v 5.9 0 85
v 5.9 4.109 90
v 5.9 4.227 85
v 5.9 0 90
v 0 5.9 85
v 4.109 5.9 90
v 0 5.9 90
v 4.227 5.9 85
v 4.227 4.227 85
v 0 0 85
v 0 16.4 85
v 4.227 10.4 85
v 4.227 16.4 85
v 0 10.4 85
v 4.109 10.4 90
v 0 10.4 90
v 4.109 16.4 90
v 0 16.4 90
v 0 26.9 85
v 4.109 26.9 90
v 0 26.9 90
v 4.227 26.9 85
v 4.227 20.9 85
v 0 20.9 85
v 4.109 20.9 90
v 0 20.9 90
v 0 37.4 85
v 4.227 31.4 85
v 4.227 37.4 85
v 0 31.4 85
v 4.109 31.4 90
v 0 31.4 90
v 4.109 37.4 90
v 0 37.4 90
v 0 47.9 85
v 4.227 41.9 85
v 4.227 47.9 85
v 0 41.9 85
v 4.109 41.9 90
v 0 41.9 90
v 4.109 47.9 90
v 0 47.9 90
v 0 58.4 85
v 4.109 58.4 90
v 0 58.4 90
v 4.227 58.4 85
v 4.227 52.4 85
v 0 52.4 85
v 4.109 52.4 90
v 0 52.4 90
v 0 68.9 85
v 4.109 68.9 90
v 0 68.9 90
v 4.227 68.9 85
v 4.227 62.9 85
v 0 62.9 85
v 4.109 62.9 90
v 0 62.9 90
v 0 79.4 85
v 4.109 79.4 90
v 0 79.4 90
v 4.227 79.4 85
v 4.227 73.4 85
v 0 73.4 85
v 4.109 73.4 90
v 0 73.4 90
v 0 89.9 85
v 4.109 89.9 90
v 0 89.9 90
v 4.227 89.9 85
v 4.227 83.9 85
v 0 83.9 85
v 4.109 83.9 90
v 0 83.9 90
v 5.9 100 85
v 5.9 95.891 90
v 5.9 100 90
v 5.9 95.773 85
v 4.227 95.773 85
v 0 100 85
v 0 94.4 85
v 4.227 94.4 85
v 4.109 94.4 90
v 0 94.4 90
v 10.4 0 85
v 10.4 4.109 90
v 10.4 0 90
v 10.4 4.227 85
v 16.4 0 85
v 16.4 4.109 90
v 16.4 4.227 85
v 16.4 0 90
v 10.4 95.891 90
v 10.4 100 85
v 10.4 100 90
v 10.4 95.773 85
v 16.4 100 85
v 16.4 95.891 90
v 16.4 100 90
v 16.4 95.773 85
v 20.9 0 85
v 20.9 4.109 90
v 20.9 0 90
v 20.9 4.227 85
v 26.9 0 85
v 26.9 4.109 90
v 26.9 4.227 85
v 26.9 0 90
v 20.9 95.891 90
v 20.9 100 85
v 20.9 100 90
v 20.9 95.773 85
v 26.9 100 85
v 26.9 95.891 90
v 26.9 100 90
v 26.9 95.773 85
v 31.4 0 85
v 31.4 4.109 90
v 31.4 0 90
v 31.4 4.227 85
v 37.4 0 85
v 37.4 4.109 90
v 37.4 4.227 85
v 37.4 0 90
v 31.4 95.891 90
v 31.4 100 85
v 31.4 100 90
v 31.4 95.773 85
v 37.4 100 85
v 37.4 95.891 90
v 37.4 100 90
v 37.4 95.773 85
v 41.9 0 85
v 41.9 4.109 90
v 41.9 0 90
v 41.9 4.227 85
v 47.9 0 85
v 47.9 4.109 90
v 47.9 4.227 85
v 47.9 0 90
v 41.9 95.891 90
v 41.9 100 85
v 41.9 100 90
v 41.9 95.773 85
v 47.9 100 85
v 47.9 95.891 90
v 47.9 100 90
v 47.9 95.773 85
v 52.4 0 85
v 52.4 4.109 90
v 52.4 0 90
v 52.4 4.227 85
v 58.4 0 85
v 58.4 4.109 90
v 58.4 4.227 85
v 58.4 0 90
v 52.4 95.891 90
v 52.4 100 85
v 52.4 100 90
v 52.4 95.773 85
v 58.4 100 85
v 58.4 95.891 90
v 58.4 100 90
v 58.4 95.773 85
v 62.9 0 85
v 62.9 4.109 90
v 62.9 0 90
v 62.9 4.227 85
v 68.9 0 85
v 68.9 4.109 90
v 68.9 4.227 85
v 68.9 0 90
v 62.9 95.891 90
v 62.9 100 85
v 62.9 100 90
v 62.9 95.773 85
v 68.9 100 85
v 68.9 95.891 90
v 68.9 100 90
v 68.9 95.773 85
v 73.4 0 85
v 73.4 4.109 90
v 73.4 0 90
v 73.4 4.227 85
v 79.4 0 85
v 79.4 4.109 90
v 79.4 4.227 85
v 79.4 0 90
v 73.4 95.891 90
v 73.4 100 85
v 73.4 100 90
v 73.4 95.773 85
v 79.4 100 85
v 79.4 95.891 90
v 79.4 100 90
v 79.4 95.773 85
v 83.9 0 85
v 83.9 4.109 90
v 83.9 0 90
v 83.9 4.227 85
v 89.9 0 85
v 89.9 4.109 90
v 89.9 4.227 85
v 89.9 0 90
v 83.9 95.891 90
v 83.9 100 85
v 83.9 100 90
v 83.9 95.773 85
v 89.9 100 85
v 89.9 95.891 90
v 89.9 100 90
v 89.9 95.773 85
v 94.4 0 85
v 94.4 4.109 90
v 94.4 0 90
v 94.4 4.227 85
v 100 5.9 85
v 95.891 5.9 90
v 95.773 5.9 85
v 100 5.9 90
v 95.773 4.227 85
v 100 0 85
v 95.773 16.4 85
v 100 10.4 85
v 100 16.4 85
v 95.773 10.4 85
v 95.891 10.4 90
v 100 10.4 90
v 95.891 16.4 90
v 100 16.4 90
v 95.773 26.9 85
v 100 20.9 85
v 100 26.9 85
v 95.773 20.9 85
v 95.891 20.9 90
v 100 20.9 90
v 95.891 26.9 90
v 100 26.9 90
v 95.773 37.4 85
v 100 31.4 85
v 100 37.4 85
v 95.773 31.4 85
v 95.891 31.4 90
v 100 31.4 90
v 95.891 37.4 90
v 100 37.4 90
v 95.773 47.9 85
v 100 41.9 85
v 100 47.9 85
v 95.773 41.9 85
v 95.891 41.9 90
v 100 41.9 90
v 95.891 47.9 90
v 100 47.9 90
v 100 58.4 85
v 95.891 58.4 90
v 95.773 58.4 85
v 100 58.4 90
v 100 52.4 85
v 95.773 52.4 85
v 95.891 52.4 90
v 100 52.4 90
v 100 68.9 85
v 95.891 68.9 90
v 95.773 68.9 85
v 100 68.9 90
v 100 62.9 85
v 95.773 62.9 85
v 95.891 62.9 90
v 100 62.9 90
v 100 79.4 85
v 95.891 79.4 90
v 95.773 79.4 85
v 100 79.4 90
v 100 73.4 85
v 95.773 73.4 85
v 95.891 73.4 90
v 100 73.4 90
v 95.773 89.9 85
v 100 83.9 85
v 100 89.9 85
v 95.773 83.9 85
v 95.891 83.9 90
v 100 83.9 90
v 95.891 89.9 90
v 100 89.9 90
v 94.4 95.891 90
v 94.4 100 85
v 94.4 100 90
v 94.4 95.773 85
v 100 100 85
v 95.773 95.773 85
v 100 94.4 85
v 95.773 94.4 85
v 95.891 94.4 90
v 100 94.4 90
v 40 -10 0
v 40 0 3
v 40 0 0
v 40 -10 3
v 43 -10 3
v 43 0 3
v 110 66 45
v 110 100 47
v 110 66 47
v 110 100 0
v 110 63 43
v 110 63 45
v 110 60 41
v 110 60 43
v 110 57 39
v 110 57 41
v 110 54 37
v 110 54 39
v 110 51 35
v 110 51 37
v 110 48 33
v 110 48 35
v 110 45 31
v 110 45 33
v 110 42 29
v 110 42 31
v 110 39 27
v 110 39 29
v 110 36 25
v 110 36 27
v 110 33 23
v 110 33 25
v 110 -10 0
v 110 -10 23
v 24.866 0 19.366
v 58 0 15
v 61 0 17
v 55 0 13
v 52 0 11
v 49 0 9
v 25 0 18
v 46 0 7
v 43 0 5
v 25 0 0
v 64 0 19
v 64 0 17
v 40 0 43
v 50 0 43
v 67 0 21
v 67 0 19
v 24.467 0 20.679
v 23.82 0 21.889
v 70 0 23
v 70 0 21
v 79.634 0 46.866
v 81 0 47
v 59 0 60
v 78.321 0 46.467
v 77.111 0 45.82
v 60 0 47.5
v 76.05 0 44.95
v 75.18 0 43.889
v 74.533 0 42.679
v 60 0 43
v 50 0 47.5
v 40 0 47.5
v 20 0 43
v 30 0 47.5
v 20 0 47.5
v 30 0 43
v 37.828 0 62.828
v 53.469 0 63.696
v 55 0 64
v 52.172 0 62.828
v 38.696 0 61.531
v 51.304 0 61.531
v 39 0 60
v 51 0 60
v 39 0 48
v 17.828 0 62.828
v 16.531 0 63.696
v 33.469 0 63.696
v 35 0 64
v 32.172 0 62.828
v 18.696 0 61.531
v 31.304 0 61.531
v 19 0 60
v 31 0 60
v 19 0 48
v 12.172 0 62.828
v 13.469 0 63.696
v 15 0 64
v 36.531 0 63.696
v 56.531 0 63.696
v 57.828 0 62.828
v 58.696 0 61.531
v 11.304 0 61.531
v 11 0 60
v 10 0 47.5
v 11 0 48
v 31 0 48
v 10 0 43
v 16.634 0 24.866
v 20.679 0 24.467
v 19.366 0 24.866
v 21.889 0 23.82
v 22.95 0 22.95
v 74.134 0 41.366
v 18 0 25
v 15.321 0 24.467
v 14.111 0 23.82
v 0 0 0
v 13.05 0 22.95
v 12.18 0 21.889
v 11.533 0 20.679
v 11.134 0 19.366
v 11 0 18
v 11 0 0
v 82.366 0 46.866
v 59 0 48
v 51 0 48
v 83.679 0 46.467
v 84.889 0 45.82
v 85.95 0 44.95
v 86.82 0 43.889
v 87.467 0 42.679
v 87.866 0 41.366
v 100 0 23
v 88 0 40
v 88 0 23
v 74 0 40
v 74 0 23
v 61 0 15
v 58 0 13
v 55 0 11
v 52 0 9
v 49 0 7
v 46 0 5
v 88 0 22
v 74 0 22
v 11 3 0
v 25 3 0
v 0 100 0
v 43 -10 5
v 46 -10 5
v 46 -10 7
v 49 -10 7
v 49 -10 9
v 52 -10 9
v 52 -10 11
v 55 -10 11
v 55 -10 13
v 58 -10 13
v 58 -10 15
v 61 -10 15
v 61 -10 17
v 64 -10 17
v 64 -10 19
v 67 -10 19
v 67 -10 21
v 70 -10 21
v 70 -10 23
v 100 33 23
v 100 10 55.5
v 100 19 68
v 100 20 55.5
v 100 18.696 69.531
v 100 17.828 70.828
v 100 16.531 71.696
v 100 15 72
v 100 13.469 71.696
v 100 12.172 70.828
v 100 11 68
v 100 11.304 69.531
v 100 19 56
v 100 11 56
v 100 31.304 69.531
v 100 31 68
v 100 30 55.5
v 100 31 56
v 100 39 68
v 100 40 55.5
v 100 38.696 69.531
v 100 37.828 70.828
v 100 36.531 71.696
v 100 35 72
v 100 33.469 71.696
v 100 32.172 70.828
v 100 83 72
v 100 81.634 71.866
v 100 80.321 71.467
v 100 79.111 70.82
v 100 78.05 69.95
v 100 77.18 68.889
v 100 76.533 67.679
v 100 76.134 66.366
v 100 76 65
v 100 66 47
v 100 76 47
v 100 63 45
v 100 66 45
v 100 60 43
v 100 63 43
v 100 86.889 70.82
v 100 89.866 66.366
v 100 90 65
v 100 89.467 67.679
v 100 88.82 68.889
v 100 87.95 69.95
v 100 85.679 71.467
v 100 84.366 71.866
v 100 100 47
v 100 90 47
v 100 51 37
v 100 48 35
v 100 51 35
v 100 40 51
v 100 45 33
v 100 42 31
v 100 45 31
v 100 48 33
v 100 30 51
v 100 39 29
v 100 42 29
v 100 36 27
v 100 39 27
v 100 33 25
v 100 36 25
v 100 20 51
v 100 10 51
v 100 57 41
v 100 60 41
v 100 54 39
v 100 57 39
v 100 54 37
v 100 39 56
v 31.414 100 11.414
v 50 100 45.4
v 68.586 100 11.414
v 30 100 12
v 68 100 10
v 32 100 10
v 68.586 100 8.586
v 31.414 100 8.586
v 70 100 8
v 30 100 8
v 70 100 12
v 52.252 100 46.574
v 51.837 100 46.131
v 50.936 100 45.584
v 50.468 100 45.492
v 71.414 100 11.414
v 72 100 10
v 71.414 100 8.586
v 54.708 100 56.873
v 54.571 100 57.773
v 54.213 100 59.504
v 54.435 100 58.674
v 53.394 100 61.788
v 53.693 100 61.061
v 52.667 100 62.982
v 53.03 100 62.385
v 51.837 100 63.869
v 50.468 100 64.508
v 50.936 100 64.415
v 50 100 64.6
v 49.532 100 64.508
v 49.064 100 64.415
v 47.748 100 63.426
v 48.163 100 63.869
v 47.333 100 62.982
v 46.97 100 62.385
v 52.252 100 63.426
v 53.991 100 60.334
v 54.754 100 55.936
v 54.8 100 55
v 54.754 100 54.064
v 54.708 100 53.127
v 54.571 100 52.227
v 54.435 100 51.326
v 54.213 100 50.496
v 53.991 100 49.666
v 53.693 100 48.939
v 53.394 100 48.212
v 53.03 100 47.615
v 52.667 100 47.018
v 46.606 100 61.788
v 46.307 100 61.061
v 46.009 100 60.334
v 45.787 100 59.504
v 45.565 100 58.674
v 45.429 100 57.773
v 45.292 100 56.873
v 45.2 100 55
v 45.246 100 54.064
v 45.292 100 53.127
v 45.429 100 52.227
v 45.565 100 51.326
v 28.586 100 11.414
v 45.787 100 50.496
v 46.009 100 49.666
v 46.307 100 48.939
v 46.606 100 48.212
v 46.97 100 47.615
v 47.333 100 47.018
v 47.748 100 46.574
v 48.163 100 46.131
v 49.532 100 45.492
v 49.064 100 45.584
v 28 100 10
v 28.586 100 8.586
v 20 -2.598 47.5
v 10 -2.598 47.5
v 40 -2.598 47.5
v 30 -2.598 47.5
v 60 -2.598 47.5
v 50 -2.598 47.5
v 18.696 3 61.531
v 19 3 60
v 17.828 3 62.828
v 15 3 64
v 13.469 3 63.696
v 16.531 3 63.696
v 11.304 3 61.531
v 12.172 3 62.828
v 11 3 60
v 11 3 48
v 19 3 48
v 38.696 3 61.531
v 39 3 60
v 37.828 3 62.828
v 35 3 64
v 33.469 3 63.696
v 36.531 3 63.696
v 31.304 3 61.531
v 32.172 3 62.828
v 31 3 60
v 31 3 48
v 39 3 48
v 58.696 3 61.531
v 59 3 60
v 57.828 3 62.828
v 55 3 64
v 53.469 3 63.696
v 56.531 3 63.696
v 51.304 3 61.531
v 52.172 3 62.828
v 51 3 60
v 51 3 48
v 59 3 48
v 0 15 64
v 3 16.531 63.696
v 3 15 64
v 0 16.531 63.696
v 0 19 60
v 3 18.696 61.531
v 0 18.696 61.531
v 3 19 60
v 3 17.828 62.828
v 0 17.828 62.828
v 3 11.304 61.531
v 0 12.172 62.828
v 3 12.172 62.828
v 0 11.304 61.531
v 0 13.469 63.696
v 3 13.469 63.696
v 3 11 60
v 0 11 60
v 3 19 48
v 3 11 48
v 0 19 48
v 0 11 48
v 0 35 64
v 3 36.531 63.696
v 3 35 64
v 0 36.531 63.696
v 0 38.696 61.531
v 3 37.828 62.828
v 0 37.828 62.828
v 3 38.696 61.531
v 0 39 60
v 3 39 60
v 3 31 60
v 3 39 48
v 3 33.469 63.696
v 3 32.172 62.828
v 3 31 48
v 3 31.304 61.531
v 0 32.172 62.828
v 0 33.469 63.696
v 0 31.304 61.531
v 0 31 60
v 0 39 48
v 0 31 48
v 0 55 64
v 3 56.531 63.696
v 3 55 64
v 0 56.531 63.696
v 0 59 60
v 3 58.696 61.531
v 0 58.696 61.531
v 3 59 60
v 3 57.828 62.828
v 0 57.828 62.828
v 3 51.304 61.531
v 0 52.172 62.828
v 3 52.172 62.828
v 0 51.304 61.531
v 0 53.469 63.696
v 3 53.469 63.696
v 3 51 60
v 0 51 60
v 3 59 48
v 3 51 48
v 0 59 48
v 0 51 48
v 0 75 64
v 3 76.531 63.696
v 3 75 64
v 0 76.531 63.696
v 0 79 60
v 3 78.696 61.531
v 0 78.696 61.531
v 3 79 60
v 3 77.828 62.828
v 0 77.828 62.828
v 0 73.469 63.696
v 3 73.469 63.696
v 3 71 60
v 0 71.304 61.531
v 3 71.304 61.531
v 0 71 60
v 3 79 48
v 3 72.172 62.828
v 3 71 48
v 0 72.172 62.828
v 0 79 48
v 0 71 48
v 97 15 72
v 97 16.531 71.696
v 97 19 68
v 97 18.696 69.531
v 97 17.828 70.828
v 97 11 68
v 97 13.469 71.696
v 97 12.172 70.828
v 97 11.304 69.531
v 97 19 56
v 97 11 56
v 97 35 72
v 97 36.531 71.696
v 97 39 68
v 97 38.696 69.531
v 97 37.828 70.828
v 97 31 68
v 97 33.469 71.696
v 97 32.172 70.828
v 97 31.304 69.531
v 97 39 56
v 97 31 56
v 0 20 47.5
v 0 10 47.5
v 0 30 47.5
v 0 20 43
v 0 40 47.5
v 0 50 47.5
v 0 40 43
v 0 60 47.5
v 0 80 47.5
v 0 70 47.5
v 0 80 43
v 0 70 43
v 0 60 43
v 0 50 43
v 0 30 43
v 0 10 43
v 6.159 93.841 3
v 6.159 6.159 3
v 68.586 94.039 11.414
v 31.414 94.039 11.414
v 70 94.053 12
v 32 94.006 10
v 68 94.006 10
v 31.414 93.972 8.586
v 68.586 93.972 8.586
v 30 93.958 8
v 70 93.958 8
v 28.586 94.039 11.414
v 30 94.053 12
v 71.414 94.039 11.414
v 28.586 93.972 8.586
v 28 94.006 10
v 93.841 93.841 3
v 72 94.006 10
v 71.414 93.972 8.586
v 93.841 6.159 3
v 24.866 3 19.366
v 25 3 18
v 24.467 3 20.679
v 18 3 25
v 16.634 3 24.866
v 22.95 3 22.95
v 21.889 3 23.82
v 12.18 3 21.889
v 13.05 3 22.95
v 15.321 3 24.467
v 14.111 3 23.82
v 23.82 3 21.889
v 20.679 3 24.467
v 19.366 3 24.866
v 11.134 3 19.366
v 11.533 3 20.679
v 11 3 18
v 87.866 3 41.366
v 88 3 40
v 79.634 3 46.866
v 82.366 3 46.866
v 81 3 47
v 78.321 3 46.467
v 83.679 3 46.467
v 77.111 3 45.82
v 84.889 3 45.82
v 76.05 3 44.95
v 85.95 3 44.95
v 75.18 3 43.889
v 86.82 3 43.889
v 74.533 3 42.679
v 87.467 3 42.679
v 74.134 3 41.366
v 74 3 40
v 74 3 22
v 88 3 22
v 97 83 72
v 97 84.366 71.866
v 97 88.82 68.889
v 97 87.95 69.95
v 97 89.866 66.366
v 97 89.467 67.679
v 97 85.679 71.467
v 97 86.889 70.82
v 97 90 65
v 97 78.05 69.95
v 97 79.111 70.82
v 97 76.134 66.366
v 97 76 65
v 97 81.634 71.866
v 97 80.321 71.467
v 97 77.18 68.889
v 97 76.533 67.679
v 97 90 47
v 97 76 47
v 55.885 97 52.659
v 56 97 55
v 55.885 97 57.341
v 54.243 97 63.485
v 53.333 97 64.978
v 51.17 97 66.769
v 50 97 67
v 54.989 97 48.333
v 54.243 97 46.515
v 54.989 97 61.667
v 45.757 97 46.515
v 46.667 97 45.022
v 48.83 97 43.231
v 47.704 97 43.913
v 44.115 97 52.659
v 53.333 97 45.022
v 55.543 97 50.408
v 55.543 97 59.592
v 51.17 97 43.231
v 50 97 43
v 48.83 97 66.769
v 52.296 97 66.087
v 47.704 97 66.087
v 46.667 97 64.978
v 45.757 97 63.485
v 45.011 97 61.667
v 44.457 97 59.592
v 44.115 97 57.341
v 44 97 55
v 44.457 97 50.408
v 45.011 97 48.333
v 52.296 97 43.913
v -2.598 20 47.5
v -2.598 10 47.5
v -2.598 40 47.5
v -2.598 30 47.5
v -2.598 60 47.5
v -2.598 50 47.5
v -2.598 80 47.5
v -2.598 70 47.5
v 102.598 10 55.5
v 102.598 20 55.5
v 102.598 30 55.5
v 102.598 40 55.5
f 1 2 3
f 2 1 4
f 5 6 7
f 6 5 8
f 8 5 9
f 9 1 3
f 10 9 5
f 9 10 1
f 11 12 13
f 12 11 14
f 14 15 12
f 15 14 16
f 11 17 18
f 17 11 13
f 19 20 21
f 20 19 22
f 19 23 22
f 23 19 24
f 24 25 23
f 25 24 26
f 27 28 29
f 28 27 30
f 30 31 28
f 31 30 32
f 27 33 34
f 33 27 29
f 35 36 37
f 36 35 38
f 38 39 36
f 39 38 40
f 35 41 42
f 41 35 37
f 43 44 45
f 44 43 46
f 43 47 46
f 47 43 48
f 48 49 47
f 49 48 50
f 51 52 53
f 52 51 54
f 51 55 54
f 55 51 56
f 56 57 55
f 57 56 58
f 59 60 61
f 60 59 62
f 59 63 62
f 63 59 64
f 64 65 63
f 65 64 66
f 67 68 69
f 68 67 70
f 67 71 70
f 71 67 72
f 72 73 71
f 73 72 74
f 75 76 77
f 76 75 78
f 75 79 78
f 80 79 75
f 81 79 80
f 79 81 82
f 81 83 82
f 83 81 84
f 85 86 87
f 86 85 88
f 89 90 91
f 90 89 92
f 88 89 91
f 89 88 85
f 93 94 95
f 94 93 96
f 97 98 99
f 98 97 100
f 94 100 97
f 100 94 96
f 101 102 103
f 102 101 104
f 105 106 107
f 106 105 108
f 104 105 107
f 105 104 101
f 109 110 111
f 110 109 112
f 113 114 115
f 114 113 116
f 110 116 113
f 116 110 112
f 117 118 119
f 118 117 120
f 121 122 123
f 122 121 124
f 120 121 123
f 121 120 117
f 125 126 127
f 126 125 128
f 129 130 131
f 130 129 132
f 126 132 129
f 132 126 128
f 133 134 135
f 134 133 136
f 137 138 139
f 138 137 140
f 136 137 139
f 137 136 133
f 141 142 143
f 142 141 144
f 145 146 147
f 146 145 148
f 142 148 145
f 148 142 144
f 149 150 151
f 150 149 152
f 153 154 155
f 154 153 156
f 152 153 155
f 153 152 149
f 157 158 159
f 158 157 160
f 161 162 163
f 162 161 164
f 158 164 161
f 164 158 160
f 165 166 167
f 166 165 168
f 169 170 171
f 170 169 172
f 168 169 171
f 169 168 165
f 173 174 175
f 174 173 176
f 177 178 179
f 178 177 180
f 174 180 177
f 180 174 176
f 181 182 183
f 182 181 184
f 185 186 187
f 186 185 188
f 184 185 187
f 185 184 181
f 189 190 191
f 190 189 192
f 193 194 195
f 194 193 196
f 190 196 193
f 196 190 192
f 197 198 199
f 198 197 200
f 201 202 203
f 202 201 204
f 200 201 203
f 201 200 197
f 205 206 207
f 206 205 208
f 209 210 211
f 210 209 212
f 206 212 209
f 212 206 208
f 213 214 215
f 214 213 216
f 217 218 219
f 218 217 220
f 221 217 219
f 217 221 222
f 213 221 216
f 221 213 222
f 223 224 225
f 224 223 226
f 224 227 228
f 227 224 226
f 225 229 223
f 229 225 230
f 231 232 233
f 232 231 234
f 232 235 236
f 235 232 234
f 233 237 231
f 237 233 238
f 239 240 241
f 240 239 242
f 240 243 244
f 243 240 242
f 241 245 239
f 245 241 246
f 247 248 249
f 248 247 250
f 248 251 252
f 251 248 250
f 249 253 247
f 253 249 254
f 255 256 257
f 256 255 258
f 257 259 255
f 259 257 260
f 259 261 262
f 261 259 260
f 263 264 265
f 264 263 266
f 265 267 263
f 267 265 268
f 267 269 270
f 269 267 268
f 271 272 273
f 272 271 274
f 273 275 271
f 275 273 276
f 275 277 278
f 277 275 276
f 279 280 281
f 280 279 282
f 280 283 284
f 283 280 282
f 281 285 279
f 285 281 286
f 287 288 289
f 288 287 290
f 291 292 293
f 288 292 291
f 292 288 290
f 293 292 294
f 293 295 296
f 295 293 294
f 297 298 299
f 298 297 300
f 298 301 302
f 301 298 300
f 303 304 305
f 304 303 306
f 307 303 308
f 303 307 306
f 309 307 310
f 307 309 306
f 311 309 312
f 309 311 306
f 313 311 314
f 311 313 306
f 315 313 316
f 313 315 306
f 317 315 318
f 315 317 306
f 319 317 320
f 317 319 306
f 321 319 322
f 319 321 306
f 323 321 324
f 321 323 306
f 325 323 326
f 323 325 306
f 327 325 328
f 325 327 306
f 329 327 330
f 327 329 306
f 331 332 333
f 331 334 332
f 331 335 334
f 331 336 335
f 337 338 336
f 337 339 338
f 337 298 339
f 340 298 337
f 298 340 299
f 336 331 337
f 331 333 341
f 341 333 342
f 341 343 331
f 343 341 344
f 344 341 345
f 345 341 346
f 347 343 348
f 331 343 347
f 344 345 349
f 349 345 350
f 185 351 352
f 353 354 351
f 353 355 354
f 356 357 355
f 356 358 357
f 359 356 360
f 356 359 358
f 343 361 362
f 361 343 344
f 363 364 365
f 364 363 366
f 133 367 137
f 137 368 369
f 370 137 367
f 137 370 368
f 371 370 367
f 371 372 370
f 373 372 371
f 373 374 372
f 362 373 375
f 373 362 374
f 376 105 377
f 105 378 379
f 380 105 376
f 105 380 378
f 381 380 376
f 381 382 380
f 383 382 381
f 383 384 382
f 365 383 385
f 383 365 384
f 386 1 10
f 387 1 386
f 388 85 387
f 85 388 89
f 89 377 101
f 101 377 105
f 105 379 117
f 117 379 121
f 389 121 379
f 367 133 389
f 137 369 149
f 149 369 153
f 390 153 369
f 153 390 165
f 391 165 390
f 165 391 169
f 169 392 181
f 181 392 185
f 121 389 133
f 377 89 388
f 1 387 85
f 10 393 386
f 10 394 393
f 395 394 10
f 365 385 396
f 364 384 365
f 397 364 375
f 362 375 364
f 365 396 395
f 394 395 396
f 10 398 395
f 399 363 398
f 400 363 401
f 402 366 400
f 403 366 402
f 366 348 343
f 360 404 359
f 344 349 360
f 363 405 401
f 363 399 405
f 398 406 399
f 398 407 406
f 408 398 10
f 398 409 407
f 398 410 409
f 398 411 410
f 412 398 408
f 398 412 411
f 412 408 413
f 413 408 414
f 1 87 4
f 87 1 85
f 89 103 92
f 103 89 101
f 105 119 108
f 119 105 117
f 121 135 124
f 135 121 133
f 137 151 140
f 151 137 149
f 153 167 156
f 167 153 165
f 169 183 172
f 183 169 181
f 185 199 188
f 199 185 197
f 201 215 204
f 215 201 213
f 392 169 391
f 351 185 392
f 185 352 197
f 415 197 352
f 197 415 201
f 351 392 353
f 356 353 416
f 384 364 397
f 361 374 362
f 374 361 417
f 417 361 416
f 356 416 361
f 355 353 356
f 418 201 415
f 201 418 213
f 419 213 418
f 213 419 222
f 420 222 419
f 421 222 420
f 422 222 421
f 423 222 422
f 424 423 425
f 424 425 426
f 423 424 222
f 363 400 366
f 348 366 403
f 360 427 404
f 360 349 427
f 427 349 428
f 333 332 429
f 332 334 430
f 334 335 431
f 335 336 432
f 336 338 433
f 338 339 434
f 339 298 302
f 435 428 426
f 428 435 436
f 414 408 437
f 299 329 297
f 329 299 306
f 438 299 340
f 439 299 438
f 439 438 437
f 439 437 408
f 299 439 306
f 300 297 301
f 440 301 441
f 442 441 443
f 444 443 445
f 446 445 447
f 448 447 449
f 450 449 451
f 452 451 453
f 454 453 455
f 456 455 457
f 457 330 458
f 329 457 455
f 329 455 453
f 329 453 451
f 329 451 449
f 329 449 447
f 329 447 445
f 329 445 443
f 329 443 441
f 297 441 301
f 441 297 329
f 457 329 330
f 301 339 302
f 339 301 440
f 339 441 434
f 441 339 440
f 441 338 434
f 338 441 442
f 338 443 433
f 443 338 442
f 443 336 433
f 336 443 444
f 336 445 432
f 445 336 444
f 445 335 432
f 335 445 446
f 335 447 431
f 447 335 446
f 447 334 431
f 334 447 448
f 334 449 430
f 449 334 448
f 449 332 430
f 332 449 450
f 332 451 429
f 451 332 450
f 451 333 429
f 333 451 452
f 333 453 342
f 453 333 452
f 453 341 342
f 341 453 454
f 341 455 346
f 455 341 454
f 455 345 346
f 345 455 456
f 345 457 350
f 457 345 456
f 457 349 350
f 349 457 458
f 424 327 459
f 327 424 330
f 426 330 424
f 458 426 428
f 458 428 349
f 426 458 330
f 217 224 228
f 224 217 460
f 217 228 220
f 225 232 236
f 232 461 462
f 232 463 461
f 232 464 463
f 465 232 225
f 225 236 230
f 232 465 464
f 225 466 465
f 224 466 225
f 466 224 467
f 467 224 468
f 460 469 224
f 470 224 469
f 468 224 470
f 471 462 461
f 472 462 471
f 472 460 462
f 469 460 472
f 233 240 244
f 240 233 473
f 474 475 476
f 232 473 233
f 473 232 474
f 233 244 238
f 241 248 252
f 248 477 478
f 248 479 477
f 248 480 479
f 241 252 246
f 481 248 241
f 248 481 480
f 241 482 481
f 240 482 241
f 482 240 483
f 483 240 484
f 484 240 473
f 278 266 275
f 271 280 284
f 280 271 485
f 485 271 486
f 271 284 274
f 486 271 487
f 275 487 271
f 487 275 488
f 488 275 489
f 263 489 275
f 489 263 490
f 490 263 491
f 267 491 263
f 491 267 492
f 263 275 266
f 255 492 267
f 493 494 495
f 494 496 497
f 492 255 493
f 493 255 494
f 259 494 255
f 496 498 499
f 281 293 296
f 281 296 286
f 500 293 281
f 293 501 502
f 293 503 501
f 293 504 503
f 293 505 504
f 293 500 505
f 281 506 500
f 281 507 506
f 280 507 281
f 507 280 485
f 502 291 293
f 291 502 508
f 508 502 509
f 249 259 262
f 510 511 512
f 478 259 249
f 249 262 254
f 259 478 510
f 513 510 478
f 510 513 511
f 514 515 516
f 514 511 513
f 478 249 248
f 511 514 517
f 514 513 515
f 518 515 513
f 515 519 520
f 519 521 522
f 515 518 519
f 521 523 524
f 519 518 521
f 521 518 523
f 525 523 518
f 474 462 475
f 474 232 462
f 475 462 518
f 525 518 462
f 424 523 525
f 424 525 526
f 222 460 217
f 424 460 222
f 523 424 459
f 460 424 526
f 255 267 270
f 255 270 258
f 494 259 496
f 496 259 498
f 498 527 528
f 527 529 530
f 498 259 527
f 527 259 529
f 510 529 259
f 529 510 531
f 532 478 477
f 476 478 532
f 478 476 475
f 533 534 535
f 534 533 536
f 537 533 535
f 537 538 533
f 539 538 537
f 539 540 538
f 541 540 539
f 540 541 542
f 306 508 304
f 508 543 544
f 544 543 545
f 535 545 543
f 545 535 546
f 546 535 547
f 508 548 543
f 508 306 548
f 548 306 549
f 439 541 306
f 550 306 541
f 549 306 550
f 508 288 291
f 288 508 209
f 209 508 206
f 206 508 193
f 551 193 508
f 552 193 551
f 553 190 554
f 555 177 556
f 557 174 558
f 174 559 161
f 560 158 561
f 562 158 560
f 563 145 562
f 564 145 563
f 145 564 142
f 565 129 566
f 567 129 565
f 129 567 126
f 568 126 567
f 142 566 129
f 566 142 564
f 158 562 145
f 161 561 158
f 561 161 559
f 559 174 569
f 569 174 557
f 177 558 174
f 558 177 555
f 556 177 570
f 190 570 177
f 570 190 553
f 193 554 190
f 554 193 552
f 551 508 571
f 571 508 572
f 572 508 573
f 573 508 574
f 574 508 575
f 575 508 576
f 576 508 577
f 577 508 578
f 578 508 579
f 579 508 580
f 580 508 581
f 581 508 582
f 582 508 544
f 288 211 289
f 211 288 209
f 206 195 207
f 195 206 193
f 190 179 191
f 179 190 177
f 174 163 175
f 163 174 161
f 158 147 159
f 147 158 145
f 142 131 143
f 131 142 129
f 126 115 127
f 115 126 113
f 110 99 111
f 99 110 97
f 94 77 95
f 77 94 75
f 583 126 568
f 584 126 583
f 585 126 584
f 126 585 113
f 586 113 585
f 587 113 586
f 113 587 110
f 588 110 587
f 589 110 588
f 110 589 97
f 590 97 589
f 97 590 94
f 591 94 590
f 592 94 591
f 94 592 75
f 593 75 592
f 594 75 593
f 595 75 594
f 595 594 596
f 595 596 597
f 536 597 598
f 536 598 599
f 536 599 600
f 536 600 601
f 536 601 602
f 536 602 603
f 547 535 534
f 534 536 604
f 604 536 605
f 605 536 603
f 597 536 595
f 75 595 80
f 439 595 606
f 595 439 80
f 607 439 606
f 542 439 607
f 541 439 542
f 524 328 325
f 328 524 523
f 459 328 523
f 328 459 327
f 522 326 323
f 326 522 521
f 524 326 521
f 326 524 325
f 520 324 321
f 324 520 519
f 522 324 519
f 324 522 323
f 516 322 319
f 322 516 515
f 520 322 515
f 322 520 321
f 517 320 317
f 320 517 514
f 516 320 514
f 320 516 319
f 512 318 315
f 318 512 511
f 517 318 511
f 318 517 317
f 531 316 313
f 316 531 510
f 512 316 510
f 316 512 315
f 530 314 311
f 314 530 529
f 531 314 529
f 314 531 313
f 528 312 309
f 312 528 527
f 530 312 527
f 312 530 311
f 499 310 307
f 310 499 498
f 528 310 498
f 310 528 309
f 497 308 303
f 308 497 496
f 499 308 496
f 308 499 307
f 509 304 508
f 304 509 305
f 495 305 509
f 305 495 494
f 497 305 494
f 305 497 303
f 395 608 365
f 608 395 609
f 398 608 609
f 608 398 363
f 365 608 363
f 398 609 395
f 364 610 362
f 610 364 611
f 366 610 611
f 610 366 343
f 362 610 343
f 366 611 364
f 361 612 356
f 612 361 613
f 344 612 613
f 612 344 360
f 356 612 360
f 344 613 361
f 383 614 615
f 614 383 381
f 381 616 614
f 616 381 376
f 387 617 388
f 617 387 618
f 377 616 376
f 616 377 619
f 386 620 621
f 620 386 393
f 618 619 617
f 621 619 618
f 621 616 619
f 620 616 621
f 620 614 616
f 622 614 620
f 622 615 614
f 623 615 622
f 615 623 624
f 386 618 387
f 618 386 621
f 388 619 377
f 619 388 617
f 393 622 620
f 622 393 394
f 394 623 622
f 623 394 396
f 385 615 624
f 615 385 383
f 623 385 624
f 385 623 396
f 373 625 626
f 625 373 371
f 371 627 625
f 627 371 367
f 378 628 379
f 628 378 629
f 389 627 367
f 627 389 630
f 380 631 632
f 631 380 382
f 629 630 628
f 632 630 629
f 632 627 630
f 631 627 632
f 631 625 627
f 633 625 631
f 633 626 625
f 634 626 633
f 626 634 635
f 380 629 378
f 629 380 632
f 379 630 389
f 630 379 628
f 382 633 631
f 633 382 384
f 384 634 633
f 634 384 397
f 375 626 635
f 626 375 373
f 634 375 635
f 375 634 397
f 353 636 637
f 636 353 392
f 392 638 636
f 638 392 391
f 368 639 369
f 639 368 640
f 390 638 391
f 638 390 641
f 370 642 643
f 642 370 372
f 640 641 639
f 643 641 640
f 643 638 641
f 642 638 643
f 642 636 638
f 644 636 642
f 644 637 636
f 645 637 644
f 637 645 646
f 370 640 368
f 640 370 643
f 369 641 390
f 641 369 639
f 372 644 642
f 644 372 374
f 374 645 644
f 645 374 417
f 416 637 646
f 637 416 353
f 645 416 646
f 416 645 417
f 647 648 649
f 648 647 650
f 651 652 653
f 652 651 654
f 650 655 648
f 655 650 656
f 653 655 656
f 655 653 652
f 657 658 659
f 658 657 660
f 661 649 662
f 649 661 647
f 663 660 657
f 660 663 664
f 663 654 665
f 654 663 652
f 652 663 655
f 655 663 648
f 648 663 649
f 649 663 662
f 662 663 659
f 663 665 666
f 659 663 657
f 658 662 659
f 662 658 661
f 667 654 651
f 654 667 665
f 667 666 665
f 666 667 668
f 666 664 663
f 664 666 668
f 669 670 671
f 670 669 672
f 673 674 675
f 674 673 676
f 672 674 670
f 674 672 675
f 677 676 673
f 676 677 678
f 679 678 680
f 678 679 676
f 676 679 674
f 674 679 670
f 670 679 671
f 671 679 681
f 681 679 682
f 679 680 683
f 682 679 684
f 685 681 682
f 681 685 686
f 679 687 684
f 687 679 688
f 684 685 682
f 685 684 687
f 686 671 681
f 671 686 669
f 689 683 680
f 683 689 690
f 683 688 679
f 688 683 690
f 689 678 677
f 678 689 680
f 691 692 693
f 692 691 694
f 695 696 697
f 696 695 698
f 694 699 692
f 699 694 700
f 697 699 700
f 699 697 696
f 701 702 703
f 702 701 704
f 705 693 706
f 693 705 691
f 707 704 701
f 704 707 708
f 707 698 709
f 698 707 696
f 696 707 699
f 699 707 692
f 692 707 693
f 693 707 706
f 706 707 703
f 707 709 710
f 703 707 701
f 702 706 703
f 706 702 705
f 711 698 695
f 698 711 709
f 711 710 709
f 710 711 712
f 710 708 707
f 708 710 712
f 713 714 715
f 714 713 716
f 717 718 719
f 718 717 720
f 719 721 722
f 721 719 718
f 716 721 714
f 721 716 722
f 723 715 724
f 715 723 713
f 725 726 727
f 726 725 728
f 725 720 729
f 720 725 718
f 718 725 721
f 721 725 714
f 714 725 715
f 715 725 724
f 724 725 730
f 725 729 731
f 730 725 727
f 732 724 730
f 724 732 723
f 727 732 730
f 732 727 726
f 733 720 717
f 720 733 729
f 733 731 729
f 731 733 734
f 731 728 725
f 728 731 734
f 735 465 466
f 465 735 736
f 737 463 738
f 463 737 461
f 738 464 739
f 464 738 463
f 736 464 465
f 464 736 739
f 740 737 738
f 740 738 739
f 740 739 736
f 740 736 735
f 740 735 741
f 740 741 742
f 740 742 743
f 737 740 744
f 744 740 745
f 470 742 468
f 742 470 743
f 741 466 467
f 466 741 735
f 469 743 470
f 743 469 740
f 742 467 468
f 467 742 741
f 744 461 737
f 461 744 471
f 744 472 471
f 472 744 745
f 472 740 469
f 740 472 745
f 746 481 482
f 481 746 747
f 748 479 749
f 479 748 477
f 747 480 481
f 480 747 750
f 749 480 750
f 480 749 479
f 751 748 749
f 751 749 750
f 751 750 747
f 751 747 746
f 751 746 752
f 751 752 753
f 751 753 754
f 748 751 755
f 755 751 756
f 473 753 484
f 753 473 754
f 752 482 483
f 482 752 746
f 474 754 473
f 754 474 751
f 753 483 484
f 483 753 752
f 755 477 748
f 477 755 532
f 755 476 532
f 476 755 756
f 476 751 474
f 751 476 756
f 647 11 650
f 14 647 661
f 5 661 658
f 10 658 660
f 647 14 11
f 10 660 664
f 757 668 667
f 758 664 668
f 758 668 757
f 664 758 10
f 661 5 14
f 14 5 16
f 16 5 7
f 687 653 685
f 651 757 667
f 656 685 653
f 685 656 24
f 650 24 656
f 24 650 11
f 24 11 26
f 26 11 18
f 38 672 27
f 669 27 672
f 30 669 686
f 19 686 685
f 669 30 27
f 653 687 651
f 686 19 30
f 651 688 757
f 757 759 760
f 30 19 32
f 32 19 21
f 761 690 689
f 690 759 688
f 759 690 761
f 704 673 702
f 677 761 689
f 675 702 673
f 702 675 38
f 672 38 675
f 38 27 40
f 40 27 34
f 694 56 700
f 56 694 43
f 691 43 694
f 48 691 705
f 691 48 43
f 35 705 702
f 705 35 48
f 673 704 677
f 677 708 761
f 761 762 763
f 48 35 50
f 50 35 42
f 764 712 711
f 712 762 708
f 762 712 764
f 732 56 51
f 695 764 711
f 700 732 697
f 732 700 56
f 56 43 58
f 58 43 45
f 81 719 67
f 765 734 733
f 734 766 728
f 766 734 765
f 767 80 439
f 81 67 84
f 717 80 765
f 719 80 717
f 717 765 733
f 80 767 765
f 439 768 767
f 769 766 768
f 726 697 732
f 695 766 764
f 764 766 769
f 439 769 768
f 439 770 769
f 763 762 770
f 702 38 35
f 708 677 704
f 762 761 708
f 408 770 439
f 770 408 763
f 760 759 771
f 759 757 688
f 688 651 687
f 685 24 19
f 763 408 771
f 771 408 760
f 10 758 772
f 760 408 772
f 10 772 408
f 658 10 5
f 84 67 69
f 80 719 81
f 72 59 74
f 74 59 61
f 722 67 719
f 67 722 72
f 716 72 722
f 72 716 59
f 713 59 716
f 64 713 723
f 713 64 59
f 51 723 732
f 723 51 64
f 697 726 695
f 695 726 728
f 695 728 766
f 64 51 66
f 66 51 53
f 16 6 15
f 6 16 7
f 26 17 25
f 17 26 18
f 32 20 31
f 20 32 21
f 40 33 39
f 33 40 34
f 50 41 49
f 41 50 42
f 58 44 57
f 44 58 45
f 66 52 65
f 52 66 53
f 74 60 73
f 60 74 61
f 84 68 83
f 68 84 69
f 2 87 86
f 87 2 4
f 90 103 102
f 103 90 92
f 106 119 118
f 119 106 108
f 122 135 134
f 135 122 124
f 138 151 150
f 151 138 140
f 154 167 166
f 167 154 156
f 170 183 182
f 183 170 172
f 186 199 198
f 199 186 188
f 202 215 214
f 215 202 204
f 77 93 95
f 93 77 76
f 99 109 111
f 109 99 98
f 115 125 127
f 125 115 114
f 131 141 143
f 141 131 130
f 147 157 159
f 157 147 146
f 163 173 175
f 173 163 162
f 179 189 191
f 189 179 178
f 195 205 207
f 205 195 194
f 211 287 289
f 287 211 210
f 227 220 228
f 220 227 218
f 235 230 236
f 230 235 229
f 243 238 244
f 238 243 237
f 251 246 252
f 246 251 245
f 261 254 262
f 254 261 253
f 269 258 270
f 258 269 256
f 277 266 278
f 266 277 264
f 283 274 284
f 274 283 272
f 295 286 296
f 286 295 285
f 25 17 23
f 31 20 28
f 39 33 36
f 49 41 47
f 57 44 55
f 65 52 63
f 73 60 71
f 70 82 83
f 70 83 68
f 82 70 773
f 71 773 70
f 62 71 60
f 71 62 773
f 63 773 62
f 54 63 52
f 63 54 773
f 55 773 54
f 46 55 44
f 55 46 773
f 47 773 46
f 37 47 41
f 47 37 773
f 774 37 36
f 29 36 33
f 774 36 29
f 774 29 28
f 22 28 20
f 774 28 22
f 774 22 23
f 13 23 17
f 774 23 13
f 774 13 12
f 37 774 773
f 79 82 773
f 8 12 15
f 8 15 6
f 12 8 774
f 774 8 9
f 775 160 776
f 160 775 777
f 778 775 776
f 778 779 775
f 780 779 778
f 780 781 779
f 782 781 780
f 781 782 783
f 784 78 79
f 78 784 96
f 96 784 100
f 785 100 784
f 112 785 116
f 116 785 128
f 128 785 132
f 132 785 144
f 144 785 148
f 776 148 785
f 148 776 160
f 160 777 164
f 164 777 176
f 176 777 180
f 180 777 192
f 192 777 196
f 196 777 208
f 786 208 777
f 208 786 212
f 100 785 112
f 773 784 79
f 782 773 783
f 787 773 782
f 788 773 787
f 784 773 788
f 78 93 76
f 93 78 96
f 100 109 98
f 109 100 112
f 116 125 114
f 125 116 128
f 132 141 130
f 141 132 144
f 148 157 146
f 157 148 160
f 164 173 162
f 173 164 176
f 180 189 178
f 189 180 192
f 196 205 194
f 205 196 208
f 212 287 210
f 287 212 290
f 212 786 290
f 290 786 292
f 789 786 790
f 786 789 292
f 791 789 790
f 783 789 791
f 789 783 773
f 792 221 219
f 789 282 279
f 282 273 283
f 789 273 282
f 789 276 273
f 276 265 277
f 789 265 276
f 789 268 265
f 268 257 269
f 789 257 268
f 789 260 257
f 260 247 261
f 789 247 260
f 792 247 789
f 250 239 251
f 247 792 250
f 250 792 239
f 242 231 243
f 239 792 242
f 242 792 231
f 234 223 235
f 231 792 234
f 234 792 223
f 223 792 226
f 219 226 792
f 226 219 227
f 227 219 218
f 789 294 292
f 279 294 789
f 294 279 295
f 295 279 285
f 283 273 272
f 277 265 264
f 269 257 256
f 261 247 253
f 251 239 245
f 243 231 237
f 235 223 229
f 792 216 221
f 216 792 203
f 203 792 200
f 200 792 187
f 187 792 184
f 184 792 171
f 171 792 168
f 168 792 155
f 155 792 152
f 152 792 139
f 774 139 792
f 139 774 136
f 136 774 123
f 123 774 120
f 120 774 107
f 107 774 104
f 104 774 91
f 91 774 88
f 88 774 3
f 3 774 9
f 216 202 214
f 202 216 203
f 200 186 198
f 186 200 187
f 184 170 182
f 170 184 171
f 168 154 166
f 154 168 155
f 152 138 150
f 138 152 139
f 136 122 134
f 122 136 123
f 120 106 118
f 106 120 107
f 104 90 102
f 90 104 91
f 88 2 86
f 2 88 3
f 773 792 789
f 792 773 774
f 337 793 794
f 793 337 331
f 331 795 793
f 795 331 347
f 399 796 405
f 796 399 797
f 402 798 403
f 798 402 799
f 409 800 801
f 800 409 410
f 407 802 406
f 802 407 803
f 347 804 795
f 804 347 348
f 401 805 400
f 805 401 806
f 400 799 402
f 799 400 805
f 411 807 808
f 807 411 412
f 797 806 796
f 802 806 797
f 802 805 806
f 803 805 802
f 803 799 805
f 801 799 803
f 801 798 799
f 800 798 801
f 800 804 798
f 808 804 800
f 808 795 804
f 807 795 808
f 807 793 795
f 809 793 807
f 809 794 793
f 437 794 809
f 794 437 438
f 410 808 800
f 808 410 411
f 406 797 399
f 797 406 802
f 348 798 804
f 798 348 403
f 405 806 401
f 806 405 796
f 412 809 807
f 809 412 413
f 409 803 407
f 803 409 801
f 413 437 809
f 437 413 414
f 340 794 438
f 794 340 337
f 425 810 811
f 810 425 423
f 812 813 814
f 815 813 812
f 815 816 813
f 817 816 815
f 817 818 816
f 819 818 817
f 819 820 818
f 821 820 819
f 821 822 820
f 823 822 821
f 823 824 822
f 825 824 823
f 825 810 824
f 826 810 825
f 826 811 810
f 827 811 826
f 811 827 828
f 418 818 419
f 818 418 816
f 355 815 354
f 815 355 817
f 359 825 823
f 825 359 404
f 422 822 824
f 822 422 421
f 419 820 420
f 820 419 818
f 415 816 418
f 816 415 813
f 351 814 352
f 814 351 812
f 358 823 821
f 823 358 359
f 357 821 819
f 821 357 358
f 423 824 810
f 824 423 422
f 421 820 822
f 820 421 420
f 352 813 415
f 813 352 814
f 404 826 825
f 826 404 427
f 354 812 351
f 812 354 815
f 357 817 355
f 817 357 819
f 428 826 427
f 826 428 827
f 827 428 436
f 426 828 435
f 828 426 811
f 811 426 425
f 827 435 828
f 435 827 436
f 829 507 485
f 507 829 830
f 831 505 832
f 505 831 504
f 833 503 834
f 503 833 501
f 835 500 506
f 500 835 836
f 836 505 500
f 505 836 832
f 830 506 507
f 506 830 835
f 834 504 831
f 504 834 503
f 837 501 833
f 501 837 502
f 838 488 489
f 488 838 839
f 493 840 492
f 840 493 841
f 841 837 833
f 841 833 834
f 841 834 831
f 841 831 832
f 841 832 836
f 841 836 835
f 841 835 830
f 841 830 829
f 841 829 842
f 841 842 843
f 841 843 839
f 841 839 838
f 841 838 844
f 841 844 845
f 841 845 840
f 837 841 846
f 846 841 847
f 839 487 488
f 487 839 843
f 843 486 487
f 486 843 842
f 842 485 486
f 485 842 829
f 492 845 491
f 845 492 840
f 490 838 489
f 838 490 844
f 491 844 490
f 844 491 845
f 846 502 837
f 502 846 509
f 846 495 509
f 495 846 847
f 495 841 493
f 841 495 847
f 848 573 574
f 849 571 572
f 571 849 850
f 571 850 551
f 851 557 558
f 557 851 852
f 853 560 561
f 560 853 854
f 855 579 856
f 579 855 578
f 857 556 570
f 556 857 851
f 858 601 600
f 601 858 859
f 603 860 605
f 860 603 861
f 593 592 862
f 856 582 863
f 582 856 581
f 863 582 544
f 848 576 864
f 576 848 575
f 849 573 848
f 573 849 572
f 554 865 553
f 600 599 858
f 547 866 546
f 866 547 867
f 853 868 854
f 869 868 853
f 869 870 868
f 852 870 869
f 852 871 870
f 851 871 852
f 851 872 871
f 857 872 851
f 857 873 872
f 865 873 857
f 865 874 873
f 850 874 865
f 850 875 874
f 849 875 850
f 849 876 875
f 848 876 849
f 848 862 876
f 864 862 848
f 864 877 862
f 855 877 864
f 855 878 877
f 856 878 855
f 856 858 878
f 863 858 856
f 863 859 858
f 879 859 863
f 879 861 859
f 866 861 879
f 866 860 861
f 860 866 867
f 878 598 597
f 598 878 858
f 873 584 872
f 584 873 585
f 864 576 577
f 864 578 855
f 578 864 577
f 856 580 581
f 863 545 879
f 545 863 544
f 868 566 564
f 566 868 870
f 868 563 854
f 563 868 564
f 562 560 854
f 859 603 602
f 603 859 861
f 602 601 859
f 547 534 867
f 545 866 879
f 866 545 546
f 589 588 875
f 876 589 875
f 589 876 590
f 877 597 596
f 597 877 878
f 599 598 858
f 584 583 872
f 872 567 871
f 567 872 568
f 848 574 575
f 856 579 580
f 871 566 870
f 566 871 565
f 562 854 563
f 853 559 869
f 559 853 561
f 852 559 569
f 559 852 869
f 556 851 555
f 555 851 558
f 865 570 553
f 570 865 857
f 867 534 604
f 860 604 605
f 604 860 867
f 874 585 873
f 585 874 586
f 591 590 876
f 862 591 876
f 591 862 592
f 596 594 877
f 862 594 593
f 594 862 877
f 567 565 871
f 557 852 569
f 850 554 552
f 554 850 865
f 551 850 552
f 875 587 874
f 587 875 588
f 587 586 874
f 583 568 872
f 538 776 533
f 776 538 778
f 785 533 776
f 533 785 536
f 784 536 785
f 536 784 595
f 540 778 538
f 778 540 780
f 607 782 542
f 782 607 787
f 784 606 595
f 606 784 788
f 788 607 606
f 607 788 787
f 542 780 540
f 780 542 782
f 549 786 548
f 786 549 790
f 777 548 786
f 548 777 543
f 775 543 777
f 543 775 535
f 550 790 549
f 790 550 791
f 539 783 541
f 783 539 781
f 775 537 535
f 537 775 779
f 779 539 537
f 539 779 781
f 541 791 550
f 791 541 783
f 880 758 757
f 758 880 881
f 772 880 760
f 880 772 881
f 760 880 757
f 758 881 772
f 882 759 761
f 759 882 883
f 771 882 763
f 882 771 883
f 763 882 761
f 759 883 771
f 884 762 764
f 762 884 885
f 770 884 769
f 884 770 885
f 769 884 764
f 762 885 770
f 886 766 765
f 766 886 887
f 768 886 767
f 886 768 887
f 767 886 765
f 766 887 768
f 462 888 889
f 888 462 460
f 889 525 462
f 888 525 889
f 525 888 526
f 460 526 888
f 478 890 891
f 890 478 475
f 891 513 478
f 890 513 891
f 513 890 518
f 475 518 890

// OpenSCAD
height = 90; //mm, value between 80-100 visuallys OK

difference(){
	cube([100,100,height]);
	translate([50,50,3])
		rotate([0,0,45])
			cylinder(height,62,65,$fn=4);

//upper part
	for (i = [0:9]){
		for (j = [0:9]){
			translate([-0.1+i*10.5,-0.1+j*10.5,height-5])
				cube([6,6,6]);
		} //j
	} //i
	//windows front
	for (i = [0:2]) {
		translate([15+i*20,3,60])
			rotate([90,0,0])
				cylinder(5,4,4, $fn=16);
		translate([11+i*20,-2,48])
			cube([8,5,12]);
	} //windows front

	//windows left
	for (i = [0:3]) {
		translate([-2,(15+i*20),60])
			rotate([0,90,0])
				cylinder(5,4,4, $fn=16);
		translate([-2,11+i*20,48])
			cube([5,8,12]);
	} //windows left

	//windows right
	for (i = [0:1]) {
		translate([97,15+i*20,,68])
			rotate([0,90,0])
				cylinder(5,4,4, $fn=16);
		translate([97,11+i*20,56])
			cube([5,8,12]);
	} //windows right


	//doors front
		translate([18,3,18])
			rotate([90,0,0])
				cylinder(5,7,7, $fn=32);
		translate([11,-2,0])
			cube([14,5,18]);

		translate([81,3,40])
			rotate([90,0,0])
				cylinder(5,7,7, $fn=32);
		translate([74,-2,22])
			cube([14,5,18]);
	//doors front

	//door right
		translate([97,83,65])
			rotate([0,90,0])
				cylinder(5,7,7, $fn=32);
		translate([97,76,47])
			cube([5,14,18]);
	//door right

	//holes in the back
		translate([50,102,55])
			rotate([90,0,0])
				scale([1,2,1])
					cylinder(5,4,6, $fn=32);

	//holes forwater
		translate([30,105,10])
			rotate([90,0,0])
					cylinder(15,2,2, $fn=8);
		translate([70,105,10])
			rotate([90,0,0])
					cylinder(15,2,2, $fn=8);

}


//stairs
//front
	for (i = [0:2:20]){
		translate([40+i*1.5,-10,i])
			cube([70-i*1.5,10,3]);

	}
//right
	for (i = [0:2:25]){
		translate([100, 30+i*1.5,,20+i])
			cube([10,70-i*1.5,3]);

	}
translate([100,0,0])
	cube([10,100,23]);


//windowsill front 
for (i = [0:2]) {
	translate([10+i*20,0,46])
		rotate([0,90,0])
			cylinder(10,3,3,$fn=3);
} //windows front support

//windowsill left support
for (i = [0:3]) {
	translate([0,10+i*20,46])
		rotate([0,90,90])
			cylinder(10,3,3,$fn=3);
} //windows left support

//windowsill right support
for (i = [0:1]) {
	translate([100,10+i*20,54])
		rotate([0,90,90])
			cylinder(10,3,3,$fn=3);
} //windows right support
